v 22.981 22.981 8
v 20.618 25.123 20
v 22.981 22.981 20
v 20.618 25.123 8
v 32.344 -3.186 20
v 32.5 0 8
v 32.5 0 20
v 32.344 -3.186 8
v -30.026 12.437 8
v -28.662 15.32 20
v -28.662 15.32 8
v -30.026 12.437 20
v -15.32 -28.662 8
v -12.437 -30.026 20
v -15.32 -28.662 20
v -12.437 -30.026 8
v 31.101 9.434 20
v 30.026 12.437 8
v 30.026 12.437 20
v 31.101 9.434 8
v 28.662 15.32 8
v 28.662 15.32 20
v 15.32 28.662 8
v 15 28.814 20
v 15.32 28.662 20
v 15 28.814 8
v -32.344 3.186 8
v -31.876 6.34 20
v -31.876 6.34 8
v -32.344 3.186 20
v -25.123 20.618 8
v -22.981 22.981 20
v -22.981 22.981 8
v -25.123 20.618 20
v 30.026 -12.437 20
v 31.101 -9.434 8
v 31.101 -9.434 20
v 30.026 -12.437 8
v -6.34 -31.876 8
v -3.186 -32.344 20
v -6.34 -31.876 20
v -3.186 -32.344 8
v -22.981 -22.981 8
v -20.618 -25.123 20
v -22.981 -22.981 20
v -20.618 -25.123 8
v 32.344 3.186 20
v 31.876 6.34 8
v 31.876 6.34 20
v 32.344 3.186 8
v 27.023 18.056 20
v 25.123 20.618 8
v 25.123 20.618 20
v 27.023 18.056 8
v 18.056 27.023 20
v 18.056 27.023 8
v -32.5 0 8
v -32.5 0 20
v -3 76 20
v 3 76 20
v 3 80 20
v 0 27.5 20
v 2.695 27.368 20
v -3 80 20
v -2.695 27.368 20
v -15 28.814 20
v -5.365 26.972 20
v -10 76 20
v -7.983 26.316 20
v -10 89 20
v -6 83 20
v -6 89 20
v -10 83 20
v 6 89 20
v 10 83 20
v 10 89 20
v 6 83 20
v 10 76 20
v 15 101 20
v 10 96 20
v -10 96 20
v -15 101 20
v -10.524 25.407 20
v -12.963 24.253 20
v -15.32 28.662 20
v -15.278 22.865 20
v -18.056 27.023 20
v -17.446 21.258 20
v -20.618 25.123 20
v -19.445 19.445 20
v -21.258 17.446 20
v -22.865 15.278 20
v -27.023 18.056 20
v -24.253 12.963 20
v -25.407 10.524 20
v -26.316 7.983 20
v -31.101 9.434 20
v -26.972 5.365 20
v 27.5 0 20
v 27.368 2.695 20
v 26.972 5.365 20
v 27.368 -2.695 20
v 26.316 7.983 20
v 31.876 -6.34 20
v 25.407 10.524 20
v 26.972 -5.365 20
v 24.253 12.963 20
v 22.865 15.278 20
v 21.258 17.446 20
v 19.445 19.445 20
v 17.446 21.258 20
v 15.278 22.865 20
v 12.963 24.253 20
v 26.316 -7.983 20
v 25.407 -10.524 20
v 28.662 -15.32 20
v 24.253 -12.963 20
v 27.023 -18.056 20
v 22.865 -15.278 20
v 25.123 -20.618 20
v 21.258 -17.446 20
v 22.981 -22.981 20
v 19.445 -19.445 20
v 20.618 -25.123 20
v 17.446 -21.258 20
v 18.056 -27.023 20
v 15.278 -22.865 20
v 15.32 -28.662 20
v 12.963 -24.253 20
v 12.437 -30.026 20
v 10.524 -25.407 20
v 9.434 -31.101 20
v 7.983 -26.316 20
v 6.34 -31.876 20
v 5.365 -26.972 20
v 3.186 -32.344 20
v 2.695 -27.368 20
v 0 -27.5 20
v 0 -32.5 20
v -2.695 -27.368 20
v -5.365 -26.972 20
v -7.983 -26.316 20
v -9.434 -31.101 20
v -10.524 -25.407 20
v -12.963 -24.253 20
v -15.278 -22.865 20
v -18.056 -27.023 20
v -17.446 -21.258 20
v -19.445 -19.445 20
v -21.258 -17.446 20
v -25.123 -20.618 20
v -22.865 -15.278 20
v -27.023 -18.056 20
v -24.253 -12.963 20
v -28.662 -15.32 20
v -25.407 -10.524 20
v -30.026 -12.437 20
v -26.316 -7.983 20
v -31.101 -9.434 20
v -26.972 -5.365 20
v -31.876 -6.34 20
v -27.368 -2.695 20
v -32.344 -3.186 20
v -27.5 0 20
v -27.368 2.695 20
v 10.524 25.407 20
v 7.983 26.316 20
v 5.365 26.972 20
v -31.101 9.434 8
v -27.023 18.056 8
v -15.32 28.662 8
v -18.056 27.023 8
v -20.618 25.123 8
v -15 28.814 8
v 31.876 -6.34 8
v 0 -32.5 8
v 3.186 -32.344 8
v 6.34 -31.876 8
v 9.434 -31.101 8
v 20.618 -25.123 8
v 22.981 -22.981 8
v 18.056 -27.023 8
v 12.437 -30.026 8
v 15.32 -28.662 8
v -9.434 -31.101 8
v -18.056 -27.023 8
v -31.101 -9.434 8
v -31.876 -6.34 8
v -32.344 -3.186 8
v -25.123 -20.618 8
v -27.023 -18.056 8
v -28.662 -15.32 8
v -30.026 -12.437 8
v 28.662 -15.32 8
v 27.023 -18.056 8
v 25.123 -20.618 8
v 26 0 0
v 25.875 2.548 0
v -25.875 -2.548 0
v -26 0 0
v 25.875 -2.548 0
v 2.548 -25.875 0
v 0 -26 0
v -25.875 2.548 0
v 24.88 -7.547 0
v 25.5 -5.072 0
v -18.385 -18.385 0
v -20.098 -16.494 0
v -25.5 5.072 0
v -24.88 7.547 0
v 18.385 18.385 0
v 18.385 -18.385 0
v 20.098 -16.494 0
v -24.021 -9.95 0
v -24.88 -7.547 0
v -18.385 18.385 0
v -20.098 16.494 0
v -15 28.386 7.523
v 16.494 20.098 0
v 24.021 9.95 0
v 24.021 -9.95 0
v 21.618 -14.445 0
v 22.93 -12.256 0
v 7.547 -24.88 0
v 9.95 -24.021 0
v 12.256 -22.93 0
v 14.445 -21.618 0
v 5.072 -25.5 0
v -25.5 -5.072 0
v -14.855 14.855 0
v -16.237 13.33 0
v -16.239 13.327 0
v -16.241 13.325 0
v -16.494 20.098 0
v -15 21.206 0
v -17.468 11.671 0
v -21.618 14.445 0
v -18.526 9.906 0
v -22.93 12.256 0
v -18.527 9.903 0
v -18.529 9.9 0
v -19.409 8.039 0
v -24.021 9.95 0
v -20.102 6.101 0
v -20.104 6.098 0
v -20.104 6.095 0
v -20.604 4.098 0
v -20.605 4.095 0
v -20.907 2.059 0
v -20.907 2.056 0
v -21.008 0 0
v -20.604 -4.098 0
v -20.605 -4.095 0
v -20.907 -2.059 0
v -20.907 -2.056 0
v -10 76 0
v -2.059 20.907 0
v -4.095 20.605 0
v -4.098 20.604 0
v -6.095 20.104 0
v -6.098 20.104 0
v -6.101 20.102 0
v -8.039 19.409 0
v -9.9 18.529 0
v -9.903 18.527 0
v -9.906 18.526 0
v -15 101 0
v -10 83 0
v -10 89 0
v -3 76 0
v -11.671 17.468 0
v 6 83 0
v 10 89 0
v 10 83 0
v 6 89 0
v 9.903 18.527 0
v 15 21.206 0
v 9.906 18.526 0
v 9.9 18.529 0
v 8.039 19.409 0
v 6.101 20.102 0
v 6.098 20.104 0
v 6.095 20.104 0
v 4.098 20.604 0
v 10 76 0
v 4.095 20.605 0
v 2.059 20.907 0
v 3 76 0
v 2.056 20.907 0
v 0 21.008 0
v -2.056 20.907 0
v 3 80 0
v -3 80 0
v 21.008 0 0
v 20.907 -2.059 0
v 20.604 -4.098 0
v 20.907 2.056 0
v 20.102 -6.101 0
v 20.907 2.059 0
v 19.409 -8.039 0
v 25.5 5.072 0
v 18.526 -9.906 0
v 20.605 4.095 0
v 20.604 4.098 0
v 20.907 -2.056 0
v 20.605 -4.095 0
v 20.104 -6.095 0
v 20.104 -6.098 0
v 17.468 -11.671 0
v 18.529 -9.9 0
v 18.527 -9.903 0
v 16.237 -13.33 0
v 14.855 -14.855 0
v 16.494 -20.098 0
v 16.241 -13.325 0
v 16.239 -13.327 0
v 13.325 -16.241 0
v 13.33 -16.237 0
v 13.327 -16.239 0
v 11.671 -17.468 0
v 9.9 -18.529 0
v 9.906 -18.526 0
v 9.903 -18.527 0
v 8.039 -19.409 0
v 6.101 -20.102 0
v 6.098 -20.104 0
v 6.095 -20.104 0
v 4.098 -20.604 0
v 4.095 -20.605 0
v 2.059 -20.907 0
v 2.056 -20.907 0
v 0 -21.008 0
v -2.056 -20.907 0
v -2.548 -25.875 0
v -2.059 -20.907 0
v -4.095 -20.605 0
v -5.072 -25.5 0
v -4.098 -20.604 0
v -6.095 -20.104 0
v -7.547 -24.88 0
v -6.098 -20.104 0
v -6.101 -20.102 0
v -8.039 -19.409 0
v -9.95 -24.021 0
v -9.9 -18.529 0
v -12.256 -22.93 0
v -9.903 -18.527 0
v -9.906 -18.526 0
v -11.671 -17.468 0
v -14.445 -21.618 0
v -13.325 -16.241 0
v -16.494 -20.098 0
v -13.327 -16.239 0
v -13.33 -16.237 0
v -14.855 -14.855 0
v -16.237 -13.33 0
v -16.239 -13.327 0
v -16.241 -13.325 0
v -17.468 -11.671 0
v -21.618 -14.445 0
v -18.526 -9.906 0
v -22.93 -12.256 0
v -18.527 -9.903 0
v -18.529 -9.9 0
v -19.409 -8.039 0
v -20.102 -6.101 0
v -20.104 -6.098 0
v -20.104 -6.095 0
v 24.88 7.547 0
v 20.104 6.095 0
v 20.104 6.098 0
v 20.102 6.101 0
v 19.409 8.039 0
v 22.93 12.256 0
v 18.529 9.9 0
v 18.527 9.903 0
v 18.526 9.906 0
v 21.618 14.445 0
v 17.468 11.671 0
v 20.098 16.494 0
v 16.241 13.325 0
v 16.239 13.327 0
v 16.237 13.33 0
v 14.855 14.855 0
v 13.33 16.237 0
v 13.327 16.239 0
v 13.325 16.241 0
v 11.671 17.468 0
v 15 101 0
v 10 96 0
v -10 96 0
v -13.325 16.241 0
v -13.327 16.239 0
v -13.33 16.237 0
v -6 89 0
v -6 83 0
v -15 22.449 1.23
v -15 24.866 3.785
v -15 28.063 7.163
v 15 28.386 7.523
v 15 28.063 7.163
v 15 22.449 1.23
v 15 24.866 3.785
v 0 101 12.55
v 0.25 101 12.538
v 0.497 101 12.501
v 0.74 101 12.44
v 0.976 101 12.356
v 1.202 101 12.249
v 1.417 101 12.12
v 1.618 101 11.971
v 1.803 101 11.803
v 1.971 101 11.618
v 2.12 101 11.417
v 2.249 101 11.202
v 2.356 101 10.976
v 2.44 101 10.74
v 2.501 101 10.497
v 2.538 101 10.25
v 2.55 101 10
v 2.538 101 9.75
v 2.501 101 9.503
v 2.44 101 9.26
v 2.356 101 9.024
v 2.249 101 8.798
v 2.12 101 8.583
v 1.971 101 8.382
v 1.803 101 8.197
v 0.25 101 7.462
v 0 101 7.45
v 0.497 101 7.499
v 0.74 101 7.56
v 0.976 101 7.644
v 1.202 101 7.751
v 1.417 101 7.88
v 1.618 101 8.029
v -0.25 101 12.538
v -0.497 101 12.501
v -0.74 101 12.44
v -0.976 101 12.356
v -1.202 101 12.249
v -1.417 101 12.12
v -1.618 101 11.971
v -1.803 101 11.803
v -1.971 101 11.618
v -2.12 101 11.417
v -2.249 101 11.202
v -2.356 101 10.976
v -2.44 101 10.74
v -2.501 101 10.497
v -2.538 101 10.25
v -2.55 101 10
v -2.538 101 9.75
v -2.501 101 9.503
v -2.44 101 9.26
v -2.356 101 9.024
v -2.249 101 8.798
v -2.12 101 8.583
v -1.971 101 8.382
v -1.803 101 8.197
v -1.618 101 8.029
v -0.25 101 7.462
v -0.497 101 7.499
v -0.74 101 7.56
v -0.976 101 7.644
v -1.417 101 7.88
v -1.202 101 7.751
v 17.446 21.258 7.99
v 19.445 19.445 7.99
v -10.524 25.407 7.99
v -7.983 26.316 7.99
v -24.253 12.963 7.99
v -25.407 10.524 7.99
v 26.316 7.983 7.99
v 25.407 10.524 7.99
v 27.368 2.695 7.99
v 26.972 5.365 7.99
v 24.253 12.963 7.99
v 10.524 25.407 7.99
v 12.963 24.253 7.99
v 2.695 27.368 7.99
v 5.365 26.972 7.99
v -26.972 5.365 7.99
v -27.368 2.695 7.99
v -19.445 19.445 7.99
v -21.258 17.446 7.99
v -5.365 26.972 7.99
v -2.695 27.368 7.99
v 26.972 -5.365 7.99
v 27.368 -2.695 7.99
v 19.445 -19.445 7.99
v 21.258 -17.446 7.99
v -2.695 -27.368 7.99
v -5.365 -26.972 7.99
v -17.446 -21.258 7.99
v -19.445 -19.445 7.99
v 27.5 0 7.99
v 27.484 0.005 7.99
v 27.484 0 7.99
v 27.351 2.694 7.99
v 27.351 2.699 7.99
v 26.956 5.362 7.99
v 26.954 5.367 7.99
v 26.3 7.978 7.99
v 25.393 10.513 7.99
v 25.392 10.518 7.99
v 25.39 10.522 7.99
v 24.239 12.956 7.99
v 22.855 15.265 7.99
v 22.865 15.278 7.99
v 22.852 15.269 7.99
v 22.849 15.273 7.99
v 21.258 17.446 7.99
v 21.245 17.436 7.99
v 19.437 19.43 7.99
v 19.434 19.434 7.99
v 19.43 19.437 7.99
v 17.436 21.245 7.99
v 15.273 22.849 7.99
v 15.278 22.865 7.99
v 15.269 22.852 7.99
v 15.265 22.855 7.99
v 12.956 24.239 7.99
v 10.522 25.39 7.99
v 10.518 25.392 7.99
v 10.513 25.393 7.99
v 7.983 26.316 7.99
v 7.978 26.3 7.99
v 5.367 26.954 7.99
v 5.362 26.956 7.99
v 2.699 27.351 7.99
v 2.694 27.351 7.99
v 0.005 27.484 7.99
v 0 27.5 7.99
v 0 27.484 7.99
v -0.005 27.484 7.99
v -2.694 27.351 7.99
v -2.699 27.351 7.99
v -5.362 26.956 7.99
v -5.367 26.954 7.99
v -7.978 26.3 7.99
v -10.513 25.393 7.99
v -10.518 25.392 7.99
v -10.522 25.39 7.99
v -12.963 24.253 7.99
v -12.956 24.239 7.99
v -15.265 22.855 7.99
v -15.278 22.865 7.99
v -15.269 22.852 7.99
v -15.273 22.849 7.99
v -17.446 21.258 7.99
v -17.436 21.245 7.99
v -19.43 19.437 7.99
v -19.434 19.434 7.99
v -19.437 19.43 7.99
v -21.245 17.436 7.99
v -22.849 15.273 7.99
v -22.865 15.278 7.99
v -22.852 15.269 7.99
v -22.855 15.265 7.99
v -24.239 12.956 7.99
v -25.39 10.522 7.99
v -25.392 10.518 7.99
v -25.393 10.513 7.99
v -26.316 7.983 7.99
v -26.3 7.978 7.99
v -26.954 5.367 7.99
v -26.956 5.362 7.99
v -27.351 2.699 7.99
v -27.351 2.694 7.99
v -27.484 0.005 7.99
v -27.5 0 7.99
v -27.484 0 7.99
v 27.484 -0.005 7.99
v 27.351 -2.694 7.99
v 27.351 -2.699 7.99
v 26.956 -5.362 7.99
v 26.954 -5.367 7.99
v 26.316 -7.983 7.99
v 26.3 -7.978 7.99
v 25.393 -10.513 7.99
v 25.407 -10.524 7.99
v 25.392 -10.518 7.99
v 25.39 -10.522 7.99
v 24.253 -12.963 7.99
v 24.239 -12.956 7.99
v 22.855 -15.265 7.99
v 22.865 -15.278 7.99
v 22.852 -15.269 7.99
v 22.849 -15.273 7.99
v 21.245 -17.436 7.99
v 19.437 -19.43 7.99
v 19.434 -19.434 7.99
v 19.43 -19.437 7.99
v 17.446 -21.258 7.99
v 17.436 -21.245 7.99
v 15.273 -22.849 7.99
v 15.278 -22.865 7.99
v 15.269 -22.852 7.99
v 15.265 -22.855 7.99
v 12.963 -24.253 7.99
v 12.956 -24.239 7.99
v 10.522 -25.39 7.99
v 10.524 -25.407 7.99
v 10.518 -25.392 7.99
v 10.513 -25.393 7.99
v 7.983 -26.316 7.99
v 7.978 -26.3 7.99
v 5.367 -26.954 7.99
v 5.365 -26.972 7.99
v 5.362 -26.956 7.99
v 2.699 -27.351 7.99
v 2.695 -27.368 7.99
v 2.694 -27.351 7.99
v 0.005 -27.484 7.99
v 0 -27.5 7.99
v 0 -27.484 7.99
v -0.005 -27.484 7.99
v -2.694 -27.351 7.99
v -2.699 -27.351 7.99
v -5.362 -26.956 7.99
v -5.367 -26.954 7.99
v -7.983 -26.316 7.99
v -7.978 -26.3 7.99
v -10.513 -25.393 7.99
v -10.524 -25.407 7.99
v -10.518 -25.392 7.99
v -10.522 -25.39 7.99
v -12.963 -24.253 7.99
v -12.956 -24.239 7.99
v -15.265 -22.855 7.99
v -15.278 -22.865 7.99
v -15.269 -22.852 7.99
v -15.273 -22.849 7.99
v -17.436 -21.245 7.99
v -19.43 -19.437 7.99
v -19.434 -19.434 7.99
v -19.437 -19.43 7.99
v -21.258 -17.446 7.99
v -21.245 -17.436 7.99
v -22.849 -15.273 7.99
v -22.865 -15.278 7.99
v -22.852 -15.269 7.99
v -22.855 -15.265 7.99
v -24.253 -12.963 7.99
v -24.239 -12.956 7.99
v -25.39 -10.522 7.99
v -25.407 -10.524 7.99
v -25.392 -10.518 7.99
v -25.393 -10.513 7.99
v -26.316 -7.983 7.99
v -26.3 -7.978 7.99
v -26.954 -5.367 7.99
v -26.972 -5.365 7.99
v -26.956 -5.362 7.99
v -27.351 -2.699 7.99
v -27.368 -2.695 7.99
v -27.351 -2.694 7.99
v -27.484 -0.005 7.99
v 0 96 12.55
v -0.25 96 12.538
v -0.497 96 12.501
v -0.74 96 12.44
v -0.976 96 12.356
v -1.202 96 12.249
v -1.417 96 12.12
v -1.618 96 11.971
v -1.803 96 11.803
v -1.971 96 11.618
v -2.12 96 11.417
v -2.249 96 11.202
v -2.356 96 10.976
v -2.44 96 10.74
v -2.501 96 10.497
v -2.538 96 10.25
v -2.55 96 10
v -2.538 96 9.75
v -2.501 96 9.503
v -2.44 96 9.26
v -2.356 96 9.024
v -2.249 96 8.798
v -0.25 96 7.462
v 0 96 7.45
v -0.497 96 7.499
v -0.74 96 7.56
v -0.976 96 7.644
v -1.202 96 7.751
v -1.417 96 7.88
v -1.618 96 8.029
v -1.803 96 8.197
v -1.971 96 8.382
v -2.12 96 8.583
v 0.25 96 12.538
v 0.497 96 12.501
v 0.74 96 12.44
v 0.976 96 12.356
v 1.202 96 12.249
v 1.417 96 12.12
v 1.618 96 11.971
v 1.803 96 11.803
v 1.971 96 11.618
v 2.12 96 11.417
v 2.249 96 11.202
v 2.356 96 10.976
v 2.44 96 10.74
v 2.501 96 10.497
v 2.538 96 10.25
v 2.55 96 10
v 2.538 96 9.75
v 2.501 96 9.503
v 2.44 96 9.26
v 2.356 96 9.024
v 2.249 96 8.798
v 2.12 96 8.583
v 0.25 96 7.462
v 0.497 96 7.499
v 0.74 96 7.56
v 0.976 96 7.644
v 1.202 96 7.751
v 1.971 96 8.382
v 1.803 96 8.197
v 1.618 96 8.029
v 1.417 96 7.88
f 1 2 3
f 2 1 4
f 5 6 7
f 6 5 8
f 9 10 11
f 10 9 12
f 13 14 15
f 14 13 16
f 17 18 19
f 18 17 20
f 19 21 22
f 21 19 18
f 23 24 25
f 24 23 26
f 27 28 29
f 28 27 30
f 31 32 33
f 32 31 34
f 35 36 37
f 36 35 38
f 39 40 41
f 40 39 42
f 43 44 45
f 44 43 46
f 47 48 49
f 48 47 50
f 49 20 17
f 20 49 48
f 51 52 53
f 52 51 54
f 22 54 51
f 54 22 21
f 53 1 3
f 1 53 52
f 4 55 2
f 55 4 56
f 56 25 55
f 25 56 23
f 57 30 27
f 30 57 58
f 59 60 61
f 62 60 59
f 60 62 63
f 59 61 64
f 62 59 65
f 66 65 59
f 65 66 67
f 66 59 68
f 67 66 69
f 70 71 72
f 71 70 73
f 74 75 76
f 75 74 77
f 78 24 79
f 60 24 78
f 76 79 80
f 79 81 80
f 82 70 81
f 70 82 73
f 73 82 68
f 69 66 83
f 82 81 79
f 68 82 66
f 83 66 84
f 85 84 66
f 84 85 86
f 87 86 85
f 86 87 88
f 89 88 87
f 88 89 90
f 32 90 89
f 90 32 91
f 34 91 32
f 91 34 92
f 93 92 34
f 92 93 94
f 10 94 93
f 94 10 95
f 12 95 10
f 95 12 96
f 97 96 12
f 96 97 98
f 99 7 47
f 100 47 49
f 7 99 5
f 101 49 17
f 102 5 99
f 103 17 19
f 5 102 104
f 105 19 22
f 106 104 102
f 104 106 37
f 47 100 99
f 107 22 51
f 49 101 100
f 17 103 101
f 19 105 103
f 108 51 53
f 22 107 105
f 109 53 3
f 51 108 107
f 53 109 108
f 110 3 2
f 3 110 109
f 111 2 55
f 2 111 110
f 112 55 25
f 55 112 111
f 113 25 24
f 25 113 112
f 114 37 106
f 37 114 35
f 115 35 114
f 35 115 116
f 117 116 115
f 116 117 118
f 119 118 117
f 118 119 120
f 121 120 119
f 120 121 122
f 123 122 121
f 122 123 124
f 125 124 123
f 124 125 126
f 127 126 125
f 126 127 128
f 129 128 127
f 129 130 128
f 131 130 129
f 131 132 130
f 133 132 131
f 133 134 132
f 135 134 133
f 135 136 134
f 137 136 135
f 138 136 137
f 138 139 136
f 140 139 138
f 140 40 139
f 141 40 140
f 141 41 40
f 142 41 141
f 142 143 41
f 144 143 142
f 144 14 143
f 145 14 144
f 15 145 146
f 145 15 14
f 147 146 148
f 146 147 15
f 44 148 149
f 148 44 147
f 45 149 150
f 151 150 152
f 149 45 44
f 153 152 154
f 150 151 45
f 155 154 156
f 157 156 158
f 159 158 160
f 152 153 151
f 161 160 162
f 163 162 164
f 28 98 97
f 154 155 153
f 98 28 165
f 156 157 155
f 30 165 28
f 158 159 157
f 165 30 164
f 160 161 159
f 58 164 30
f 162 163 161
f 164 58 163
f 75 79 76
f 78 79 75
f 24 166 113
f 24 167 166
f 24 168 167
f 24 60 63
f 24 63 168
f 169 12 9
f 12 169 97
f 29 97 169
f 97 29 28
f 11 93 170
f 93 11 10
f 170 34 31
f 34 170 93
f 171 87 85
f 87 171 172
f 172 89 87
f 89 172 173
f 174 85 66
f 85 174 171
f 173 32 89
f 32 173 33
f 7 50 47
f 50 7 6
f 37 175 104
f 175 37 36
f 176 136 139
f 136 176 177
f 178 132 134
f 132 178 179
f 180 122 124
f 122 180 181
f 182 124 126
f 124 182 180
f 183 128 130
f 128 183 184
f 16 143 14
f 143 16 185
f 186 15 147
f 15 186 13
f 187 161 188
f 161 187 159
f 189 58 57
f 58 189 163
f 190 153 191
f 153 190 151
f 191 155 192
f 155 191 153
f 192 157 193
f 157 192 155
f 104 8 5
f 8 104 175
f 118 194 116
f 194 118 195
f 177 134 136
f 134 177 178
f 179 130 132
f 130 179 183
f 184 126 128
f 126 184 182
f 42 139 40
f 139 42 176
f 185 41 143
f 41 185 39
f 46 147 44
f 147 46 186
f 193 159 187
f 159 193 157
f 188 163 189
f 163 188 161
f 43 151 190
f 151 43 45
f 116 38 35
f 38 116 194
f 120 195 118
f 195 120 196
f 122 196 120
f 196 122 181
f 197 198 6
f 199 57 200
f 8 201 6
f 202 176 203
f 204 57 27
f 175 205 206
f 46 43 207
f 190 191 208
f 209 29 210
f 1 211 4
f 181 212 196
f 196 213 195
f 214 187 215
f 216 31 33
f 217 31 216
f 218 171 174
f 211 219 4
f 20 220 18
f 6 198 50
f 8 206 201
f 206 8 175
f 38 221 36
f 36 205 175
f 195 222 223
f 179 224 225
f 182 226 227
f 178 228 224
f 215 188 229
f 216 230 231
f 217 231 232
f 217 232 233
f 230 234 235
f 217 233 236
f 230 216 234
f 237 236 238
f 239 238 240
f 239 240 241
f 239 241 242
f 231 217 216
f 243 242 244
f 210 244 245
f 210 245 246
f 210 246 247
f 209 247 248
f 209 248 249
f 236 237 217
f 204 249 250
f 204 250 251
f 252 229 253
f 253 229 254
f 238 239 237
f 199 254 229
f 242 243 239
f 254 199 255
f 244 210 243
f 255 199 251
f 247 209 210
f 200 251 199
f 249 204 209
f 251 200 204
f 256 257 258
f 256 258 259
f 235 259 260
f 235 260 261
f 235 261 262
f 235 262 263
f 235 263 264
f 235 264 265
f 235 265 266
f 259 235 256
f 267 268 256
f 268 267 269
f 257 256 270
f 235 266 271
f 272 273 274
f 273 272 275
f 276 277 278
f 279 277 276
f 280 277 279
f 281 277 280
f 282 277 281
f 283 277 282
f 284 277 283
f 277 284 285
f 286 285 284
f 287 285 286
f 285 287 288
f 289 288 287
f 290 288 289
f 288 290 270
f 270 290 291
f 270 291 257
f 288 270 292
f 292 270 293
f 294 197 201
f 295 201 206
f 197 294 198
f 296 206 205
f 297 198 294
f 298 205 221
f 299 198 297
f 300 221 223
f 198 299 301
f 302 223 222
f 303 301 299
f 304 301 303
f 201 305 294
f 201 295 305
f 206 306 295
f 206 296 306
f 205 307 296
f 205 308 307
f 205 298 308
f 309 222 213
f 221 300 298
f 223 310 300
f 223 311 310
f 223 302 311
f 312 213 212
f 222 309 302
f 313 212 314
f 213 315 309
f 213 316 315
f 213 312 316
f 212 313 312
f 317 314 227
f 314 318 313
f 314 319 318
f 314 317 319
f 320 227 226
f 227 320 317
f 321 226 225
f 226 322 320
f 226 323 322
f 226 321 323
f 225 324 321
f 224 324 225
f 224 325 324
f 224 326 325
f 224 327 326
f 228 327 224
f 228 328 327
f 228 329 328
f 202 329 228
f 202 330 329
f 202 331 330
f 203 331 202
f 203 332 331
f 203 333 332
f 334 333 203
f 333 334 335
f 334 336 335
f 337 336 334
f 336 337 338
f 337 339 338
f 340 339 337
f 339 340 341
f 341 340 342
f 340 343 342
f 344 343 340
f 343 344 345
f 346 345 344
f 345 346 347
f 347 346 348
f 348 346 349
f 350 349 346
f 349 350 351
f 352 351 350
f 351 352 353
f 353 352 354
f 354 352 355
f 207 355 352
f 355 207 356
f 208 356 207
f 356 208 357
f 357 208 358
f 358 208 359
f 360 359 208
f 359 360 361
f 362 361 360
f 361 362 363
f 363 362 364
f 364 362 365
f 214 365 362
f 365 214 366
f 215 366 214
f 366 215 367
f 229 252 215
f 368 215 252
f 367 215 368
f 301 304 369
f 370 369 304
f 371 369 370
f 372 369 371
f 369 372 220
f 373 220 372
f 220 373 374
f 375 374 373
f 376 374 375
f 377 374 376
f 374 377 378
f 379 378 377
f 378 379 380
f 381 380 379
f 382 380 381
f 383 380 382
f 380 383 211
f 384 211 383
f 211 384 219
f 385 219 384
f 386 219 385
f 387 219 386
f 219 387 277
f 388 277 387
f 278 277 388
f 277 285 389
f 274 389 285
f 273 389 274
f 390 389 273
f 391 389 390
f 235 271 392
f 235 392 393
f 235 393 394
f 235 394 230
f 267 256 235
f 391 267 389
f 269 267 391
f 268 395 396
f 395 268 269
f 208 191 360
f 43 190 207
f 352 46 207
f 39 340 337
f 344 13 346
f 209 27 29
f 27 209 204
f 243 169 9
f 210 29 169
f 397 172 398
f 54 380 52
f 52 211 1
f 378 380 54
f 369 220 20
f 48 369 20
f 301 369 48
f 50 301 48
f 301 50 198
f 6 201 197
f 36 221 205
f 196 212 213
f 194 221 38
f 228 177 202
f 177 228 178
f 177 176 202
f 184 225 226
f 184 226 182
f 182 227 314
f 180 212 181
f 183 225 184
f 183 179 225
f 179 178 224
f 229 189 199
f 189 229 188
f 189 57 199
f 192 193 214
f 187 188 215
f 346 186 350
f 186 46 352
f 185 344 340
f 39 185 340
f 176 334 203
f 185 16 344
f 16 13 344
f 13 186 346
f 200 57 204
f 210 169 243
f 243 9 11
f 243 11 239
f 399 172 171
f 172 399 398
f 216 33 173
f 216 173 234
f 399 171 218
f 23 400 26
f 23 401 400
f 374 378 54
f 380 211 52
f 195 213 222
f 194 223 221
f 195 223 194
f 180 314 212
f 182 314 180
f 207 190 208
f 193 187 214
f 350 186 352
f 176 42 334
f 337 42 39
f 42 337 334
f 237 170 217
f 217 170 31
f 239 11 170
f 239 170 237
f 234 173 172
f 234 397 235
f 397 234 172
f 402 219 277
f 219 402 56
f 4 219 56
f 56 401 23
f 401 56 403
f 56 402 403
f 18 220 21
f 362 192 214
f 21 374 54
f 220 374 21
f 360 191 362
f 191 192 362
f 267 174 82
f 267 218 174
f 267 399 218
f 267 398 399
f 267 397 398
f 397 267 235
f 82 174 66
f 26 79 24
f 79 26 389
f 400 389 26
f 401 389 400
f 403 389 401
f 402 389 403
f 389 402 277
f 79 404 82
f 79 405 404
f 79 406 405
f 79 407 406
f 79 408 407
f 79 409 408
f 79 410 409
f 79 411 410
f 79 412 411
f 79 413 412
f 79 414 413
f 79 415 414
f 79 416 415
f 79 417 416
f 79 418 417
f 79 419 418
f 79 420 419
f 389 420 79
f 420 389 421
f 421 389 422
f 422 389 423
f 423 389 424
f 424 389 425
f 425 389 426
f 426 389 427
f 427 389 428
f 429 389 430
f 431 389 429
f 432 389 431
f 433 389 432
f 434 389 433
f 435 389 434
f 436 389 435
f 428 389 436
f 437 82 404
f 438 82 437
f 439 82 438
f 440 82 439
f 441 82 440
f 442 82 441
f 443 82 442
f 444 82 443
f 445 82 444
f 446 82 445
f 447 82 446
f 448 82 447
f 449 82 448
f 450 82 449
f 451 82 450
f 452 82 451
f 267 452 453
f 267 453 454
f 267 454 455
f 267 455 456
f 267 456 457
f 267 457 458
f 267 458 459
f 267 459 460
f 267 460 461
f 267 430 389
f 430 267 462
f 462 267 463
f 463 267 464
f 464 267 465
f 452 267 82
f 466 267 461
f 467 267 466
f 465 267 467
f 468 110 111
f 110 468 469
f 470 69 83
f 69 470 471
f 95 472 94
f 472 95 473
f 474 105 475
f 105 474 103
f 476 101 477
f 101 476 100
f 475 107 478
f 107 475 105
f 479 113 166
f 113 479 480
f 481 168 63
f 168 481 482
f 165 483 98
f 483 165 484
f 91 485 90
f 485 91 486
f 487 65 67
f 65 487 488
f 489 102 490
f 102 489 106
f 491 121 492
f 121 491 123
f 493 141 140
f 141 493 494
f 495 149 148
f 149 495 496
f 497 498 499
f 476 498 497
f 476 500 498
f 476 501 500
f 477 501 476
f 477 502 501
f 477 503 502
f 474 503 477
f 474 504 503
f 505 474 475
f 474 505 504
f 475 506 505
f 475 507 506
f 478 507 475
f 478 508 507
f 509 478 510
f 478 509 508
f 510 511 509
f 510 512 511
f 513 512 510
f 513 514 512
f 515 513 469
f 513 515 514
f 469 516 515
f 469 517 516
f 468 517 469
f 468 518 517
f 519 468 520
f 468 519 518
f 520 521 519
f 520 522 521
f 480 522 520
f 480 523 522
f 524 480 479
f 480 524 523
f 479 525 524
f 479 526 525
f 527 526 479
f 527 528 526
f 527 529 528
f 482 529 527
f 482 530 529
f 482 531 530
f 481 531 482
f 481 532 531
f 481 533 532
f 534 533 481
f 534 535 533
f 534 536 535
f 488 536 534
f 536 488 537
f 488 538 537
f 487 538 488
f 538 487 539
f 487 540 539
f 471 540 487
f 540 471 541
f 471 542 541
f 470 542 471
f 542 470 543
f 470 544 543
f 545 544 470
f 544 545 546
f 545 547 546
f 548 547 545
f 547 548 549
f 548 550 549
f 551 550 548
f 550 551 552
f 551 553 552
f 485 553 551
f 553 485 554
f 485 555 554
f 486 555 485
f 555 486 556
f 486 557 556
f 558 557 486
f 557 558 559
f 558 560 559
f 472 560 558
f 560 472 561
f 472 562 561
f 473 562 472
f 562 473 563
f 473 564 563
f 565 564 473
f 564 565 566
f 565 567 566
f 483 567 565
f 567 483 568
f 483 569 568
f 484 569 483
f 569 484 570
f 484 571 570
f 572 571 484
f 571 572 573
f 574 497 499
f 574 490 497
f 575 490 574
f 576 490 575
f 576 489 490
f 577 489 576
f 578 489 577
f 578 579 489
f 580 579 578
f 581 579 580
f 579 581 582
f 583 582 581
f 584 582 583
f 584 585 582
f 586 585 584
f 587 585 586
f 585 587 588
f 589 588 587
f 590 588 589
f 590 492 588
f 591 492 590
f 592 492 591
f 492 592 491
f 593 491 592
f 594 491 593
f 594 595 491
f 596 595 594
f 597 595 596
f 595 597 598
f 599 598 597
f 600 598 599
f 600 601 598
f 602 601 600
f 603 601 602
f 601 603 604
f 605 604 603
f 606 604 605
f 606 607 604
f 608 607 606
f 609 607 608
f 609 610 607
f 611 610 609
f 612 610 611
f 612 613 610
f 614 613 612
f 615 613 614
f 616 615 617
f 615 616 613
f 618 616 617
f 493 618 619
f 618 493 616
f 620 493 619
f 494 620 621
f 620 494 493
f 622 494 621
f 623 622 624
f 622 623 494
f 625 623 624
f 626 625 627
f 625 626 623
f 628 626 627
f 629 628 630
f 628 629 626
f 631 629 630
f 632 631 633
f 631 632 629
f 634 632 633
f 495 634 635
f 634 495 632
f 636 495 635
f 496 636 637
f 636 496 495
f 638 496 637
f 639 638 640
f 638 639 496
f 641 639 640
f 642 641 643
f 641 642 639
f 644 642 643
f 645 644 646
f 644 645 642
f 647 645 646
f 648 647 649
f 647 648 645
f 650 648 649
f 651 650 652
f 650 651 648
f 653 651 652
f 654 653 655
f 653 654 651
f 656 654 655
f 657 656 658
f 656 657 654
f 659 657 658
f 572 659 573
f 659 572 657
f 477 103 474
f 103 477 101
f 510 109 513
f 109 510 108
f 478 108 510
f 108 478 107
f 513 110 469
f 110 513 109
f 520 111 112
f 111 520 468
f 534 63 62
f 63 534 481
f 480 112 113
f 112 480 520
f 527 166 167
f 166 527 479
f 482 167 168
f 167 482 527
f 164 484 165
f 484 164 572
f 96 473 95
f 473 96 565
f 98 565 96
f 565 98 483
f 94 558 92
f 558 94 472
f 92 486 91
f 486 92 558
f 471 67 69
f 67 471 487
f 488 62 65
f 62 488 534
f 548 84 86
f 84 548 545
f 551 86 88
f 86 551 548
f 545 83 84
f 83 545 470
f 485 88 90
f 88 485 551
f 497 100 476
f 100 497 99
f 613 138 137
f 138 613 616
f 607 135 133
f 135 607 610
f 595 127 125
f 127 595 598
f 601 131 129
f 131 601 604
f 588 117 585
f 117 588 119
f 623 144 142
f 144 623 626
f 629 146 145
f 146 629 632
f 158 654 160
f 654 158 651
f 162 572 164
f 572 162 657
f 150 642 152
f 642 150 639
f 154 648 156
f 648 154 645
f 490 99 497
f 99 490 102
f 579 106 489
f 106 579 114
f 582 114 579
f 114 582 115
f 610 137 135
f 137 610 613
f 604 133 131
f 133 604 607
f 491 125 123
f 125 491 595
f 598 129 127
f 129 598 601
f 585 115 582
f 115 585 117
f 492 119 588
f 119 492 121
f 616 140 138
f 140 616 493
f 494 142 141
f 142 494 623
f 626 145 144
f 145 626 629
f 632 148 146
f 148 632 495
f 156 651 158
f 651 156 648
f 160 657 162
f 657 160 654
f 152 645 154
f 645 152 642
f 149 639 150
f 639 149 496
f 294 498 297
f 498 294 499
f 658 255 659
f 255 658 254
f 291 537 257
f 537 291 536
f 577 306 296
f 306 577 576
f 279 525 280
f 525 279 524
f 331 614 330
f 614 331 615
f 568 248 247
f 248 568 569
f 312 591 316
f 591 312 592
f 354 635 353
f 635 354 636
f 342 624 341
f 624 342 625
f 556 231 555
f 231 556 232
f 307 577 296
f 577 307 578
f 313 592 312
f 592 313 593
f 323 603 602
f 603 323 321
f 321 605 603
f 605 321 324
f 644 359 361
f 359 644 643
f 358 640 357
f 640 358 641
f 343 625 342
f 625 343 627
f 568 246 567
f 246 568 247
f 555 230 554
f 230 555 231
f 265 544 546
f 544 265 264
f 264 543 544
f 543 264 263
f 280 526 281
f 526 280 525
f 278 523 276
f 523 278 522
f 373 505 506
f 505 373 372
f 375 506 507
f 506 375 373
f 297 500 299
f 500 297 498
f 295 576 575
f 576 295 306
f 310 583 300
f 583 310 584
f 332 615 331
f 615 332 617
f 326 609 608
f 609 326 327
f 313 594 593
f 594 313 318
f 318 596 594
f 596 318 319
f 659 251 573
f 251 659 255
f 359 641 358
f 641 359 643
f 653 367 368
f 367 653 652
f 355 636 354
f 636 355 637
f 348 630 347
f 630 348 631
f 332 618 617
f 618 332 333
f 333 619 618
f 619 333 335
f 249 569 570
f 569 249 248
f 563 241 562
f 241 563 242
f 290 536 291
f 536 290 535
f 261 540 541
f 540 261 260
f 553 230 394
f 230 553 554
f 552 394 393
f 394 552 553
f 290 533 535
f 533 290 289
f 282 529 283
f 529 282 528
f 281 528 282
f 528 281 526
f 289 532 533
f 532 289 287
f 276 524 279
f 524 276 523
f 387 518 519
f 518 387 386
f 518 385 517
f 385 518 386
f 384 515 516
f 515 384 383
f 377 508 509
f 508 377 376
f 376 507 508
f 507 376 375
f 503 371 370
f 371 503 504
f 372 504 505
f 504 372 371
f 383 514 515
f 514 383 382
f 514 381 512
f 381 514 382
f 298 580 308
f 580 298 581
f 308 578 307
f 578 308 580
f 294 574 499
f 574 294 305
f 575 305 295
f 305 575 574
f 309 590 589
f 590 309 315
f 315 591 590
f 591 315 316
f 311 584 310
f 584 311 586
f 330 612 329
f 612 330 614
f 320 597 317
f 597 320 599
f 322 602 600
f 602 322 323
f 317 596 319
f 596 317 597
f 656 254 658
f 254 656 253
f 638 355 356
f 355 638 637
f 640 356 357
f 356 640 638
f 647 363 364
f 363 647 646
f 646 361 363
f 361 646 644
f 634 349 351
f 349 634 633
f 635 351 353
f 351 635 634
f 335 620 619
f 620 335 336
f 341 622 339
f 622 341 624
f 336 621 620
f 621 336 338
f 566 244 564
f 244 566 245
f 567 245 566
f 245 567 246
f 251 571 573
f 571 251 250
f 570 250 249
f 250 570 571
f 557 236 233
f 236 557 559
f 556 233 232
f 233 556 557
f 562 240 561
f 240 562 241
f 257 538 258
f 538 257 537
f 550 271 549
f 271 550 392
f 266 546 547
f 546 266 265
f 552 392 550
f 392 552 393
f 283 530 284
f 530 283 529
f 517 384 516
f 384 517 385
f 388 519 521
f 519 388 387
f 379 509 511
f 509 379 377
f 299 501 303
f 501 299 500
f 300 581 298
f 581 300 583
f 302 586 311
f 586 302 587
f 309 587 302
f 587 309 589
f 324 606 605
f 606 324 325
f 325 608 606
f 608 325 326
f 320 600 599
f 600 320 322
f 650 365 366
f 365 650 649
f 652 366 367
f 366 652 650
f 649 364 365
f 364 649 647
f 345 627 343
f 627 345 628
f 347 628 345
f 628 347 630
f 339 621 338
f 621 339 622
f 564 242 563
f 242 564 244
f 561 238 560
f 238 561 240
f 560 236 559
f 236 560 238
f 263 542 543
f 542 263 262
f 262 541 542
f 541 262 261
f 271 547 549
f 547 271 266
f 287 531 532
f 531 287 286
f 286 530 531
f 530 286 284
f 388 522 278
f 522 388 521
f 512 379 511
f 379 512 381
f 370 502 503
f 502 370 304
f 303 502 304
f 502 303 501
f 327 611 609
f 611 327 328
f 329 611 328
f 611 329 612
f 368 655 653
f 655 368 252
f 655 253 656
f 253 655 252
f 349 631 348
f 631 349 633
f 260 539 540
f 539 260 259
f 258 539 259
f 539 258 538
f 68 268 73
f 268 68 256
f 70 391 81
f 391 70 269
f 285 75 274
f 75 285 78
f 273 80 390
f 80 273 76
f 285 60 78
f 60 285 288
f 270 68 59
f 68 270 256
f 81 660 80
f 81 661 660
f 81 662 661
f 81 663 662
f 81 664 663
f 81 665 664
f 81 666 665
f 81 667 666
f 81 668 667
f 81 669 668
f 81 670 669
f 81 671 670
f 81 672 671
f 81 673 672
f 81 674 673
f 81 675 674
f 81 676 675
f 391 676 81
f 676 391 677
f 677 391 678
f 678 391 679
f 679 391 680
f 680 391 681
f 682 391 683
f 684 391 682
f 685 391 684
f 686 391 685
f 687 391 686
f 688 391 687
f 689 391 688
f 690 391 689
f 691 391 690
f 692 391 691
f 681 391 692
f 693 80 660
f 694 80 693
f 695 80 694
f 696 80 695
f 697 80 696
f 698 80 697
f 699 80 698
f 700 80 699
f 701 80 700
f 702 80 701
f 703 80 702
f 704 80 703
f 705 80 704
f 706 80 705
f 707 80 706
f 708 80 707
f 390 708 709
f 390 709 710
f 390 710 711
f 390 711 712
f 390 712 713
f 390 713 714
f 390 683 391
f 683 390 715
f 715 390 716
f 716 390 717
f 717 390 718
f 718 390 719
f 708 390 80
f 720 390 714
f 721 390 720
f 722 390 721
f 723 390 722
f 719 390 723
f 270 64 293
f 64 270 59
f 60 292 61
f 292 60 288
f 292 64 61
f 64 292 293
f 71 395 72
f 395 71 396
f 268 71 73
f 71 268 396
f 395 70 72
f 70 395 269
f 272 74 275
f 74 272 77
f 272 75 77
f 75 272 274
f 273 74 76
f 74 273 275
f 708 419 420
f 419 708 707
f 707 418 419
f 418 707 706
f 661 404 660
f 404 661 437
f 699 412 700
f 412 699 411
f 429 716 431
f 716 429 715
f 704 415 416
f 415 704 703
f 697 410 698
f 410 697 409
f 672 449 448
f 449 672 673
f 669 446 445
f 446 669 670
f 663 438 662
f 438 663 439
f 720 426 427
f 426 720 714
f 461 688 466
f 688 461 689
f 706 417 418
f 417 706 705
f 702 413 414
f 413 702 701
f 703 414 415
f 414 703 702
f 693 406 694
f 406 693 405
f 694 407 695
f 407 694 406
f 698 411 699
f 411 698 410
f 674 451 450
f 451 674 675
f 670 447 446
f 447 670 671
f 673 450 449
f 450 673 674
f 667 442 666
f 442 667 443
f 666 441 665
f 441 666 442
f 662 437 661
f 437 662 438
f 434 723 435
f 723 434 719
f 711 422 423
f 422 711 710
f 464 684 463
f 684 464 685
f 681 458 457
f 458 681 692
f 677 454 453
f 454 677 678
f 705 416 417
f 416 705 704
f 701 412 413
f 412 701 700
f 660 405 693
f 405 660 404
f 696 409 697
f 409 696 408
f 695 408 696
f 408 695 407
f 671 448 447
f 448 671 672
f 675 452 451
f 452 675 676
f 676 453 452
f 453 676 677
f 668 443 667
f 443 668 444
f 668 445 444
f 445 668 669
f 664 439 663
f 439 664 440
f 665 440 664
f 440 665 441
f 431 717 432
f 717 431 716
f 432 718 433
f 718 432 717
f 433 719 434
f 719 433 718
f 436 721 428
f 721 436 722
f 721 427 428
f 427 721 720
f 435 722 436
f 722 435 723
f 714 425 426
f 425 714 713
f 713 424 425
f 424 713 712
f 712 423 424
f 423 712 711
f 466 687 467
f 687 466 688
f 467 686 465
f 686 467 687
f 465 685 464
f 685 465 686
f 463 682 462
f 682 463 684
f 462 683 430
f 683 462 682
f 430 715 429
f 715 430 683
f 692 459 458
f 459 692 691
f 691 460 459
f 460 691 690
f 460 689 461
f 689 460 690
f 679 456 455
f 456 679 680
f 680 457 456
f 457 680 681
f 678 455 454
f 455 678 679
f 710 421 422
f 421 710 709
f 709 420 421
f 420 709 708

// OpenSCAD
Funnel_Size_L = 55;
Funnel_Size_S = 42;

Funnel_Straight_Segment_Height = 12;
Funnel_Angled_Segment_Height = 8;

Funnel_Wall_Thickness = 5;

Extrusion_Size = 20;
Extrusion_Slot_Width = 6;
Extrusion_Slot_Depth = 4;

Holder_Thickness = 5;
Holder_Length = 50 + Extrusion_Size + Holder_Thickness + Funnel_Wall_Thickness; 

Screw_Diameter = 5.1;


f = 0.01;
df = 2 * f;

$fn = 64;

arm_width = Extrusion_Size + 2 * Holder_Thickness;
arm_height = Funnel_Straight_Segment_Height + Funnel_Angled_Segment_Height;

module funnel_body() {
    translate([0, 0, Funnel_Angled_Segment_Height]) 
        cylinder(d = Funnel_Size_L + 2 * Funnel_Wall_Thickness, h = Funnel_Straight_Segment_Height);
    cylinder(d2 = Funnel_Size_L + 2 * Funnel_Wall_Thickness, d1 = Funnel_Size_S + 2 * Funnel_Wall_Thickness, h = Funnel_Angled_Segment_Height);
}
    
module funnel_inner_body() {
    translate([0, 0, Funnel_Angled_Segment_Height - f]) 
        cylinder(d = Funnel_Size_L, h = Funnel_Straight_Segment_Height + df);

    translate([0, 0, -f])
        cylinder(d2 = Funnel_Size_L, d1 = Funnel_Size_S, h = Funnel_Angled_Segment_Height + df);
}

module funnel_arm_body() {
    union() {
        funnel_body();
        translate([-arm_width/2, Funnel_Size_S/2, 0])
            cube([arm_width, Holder_Length, arm_height]);
    }
}

module funnel_arm() {
    difference() {
        union() {
            difference() {
                funnel_arm_body();
                funnel_inner_body();
                
                // extrusion cutout
                translate([-arm_width/2 + Holder_Thickness, Funnel_Size_S/2 + Holder_Length - (Extrusion_Size + Holder_Thickness), -f])
                    cube([Extrusion_Size, Extrusion_Size, arm_height + df]);
            }
            // extrusion slot guides
            translate([-arm_width/2, Funnel_Size_S/2, 0]) {
                translate([arm_width/2 - Extrusion_Slot_Width / 2, Holder_Length - (Extrusion_Size + Holder_Thickness), 0])
                    color("grey")
                        cube([Extrusion_Slot_Width, Extrusion_Slot_Depth, arm_height]); 
                translate([Holder_Thickness, Holder_Length - (Extrusion_Size/2 + Holder_Thickness + Extrusion_Slot_Width/2), 0])
                    color("grey")
                        cube([Extrusion_Slot_Depth, Extrusion_Slot_Width, arm_height]); 
                translate([Holder_Thickness + Extrusion_Size - Extrusion_Slot_Depth, Holder_Length - (Extrusion_Size/2 + Holder_Thickness + Extrusion_Slot_Width/2), 0])
                    color("grey")
                        cube([Extrusion_Slot_Depth, Extrusion_Slot_Width, arm_height]); 
            }
        }
        // screw hole
        translate([0, Funnel_Size_S/2 + Holder_Length + f, arm_height/2])
        rotate([90, 0, 0])
            color("blue")
                cylinder(d = Screw_Diameter, h = Extrusion_Size);
    }
}

funnel_arm();
